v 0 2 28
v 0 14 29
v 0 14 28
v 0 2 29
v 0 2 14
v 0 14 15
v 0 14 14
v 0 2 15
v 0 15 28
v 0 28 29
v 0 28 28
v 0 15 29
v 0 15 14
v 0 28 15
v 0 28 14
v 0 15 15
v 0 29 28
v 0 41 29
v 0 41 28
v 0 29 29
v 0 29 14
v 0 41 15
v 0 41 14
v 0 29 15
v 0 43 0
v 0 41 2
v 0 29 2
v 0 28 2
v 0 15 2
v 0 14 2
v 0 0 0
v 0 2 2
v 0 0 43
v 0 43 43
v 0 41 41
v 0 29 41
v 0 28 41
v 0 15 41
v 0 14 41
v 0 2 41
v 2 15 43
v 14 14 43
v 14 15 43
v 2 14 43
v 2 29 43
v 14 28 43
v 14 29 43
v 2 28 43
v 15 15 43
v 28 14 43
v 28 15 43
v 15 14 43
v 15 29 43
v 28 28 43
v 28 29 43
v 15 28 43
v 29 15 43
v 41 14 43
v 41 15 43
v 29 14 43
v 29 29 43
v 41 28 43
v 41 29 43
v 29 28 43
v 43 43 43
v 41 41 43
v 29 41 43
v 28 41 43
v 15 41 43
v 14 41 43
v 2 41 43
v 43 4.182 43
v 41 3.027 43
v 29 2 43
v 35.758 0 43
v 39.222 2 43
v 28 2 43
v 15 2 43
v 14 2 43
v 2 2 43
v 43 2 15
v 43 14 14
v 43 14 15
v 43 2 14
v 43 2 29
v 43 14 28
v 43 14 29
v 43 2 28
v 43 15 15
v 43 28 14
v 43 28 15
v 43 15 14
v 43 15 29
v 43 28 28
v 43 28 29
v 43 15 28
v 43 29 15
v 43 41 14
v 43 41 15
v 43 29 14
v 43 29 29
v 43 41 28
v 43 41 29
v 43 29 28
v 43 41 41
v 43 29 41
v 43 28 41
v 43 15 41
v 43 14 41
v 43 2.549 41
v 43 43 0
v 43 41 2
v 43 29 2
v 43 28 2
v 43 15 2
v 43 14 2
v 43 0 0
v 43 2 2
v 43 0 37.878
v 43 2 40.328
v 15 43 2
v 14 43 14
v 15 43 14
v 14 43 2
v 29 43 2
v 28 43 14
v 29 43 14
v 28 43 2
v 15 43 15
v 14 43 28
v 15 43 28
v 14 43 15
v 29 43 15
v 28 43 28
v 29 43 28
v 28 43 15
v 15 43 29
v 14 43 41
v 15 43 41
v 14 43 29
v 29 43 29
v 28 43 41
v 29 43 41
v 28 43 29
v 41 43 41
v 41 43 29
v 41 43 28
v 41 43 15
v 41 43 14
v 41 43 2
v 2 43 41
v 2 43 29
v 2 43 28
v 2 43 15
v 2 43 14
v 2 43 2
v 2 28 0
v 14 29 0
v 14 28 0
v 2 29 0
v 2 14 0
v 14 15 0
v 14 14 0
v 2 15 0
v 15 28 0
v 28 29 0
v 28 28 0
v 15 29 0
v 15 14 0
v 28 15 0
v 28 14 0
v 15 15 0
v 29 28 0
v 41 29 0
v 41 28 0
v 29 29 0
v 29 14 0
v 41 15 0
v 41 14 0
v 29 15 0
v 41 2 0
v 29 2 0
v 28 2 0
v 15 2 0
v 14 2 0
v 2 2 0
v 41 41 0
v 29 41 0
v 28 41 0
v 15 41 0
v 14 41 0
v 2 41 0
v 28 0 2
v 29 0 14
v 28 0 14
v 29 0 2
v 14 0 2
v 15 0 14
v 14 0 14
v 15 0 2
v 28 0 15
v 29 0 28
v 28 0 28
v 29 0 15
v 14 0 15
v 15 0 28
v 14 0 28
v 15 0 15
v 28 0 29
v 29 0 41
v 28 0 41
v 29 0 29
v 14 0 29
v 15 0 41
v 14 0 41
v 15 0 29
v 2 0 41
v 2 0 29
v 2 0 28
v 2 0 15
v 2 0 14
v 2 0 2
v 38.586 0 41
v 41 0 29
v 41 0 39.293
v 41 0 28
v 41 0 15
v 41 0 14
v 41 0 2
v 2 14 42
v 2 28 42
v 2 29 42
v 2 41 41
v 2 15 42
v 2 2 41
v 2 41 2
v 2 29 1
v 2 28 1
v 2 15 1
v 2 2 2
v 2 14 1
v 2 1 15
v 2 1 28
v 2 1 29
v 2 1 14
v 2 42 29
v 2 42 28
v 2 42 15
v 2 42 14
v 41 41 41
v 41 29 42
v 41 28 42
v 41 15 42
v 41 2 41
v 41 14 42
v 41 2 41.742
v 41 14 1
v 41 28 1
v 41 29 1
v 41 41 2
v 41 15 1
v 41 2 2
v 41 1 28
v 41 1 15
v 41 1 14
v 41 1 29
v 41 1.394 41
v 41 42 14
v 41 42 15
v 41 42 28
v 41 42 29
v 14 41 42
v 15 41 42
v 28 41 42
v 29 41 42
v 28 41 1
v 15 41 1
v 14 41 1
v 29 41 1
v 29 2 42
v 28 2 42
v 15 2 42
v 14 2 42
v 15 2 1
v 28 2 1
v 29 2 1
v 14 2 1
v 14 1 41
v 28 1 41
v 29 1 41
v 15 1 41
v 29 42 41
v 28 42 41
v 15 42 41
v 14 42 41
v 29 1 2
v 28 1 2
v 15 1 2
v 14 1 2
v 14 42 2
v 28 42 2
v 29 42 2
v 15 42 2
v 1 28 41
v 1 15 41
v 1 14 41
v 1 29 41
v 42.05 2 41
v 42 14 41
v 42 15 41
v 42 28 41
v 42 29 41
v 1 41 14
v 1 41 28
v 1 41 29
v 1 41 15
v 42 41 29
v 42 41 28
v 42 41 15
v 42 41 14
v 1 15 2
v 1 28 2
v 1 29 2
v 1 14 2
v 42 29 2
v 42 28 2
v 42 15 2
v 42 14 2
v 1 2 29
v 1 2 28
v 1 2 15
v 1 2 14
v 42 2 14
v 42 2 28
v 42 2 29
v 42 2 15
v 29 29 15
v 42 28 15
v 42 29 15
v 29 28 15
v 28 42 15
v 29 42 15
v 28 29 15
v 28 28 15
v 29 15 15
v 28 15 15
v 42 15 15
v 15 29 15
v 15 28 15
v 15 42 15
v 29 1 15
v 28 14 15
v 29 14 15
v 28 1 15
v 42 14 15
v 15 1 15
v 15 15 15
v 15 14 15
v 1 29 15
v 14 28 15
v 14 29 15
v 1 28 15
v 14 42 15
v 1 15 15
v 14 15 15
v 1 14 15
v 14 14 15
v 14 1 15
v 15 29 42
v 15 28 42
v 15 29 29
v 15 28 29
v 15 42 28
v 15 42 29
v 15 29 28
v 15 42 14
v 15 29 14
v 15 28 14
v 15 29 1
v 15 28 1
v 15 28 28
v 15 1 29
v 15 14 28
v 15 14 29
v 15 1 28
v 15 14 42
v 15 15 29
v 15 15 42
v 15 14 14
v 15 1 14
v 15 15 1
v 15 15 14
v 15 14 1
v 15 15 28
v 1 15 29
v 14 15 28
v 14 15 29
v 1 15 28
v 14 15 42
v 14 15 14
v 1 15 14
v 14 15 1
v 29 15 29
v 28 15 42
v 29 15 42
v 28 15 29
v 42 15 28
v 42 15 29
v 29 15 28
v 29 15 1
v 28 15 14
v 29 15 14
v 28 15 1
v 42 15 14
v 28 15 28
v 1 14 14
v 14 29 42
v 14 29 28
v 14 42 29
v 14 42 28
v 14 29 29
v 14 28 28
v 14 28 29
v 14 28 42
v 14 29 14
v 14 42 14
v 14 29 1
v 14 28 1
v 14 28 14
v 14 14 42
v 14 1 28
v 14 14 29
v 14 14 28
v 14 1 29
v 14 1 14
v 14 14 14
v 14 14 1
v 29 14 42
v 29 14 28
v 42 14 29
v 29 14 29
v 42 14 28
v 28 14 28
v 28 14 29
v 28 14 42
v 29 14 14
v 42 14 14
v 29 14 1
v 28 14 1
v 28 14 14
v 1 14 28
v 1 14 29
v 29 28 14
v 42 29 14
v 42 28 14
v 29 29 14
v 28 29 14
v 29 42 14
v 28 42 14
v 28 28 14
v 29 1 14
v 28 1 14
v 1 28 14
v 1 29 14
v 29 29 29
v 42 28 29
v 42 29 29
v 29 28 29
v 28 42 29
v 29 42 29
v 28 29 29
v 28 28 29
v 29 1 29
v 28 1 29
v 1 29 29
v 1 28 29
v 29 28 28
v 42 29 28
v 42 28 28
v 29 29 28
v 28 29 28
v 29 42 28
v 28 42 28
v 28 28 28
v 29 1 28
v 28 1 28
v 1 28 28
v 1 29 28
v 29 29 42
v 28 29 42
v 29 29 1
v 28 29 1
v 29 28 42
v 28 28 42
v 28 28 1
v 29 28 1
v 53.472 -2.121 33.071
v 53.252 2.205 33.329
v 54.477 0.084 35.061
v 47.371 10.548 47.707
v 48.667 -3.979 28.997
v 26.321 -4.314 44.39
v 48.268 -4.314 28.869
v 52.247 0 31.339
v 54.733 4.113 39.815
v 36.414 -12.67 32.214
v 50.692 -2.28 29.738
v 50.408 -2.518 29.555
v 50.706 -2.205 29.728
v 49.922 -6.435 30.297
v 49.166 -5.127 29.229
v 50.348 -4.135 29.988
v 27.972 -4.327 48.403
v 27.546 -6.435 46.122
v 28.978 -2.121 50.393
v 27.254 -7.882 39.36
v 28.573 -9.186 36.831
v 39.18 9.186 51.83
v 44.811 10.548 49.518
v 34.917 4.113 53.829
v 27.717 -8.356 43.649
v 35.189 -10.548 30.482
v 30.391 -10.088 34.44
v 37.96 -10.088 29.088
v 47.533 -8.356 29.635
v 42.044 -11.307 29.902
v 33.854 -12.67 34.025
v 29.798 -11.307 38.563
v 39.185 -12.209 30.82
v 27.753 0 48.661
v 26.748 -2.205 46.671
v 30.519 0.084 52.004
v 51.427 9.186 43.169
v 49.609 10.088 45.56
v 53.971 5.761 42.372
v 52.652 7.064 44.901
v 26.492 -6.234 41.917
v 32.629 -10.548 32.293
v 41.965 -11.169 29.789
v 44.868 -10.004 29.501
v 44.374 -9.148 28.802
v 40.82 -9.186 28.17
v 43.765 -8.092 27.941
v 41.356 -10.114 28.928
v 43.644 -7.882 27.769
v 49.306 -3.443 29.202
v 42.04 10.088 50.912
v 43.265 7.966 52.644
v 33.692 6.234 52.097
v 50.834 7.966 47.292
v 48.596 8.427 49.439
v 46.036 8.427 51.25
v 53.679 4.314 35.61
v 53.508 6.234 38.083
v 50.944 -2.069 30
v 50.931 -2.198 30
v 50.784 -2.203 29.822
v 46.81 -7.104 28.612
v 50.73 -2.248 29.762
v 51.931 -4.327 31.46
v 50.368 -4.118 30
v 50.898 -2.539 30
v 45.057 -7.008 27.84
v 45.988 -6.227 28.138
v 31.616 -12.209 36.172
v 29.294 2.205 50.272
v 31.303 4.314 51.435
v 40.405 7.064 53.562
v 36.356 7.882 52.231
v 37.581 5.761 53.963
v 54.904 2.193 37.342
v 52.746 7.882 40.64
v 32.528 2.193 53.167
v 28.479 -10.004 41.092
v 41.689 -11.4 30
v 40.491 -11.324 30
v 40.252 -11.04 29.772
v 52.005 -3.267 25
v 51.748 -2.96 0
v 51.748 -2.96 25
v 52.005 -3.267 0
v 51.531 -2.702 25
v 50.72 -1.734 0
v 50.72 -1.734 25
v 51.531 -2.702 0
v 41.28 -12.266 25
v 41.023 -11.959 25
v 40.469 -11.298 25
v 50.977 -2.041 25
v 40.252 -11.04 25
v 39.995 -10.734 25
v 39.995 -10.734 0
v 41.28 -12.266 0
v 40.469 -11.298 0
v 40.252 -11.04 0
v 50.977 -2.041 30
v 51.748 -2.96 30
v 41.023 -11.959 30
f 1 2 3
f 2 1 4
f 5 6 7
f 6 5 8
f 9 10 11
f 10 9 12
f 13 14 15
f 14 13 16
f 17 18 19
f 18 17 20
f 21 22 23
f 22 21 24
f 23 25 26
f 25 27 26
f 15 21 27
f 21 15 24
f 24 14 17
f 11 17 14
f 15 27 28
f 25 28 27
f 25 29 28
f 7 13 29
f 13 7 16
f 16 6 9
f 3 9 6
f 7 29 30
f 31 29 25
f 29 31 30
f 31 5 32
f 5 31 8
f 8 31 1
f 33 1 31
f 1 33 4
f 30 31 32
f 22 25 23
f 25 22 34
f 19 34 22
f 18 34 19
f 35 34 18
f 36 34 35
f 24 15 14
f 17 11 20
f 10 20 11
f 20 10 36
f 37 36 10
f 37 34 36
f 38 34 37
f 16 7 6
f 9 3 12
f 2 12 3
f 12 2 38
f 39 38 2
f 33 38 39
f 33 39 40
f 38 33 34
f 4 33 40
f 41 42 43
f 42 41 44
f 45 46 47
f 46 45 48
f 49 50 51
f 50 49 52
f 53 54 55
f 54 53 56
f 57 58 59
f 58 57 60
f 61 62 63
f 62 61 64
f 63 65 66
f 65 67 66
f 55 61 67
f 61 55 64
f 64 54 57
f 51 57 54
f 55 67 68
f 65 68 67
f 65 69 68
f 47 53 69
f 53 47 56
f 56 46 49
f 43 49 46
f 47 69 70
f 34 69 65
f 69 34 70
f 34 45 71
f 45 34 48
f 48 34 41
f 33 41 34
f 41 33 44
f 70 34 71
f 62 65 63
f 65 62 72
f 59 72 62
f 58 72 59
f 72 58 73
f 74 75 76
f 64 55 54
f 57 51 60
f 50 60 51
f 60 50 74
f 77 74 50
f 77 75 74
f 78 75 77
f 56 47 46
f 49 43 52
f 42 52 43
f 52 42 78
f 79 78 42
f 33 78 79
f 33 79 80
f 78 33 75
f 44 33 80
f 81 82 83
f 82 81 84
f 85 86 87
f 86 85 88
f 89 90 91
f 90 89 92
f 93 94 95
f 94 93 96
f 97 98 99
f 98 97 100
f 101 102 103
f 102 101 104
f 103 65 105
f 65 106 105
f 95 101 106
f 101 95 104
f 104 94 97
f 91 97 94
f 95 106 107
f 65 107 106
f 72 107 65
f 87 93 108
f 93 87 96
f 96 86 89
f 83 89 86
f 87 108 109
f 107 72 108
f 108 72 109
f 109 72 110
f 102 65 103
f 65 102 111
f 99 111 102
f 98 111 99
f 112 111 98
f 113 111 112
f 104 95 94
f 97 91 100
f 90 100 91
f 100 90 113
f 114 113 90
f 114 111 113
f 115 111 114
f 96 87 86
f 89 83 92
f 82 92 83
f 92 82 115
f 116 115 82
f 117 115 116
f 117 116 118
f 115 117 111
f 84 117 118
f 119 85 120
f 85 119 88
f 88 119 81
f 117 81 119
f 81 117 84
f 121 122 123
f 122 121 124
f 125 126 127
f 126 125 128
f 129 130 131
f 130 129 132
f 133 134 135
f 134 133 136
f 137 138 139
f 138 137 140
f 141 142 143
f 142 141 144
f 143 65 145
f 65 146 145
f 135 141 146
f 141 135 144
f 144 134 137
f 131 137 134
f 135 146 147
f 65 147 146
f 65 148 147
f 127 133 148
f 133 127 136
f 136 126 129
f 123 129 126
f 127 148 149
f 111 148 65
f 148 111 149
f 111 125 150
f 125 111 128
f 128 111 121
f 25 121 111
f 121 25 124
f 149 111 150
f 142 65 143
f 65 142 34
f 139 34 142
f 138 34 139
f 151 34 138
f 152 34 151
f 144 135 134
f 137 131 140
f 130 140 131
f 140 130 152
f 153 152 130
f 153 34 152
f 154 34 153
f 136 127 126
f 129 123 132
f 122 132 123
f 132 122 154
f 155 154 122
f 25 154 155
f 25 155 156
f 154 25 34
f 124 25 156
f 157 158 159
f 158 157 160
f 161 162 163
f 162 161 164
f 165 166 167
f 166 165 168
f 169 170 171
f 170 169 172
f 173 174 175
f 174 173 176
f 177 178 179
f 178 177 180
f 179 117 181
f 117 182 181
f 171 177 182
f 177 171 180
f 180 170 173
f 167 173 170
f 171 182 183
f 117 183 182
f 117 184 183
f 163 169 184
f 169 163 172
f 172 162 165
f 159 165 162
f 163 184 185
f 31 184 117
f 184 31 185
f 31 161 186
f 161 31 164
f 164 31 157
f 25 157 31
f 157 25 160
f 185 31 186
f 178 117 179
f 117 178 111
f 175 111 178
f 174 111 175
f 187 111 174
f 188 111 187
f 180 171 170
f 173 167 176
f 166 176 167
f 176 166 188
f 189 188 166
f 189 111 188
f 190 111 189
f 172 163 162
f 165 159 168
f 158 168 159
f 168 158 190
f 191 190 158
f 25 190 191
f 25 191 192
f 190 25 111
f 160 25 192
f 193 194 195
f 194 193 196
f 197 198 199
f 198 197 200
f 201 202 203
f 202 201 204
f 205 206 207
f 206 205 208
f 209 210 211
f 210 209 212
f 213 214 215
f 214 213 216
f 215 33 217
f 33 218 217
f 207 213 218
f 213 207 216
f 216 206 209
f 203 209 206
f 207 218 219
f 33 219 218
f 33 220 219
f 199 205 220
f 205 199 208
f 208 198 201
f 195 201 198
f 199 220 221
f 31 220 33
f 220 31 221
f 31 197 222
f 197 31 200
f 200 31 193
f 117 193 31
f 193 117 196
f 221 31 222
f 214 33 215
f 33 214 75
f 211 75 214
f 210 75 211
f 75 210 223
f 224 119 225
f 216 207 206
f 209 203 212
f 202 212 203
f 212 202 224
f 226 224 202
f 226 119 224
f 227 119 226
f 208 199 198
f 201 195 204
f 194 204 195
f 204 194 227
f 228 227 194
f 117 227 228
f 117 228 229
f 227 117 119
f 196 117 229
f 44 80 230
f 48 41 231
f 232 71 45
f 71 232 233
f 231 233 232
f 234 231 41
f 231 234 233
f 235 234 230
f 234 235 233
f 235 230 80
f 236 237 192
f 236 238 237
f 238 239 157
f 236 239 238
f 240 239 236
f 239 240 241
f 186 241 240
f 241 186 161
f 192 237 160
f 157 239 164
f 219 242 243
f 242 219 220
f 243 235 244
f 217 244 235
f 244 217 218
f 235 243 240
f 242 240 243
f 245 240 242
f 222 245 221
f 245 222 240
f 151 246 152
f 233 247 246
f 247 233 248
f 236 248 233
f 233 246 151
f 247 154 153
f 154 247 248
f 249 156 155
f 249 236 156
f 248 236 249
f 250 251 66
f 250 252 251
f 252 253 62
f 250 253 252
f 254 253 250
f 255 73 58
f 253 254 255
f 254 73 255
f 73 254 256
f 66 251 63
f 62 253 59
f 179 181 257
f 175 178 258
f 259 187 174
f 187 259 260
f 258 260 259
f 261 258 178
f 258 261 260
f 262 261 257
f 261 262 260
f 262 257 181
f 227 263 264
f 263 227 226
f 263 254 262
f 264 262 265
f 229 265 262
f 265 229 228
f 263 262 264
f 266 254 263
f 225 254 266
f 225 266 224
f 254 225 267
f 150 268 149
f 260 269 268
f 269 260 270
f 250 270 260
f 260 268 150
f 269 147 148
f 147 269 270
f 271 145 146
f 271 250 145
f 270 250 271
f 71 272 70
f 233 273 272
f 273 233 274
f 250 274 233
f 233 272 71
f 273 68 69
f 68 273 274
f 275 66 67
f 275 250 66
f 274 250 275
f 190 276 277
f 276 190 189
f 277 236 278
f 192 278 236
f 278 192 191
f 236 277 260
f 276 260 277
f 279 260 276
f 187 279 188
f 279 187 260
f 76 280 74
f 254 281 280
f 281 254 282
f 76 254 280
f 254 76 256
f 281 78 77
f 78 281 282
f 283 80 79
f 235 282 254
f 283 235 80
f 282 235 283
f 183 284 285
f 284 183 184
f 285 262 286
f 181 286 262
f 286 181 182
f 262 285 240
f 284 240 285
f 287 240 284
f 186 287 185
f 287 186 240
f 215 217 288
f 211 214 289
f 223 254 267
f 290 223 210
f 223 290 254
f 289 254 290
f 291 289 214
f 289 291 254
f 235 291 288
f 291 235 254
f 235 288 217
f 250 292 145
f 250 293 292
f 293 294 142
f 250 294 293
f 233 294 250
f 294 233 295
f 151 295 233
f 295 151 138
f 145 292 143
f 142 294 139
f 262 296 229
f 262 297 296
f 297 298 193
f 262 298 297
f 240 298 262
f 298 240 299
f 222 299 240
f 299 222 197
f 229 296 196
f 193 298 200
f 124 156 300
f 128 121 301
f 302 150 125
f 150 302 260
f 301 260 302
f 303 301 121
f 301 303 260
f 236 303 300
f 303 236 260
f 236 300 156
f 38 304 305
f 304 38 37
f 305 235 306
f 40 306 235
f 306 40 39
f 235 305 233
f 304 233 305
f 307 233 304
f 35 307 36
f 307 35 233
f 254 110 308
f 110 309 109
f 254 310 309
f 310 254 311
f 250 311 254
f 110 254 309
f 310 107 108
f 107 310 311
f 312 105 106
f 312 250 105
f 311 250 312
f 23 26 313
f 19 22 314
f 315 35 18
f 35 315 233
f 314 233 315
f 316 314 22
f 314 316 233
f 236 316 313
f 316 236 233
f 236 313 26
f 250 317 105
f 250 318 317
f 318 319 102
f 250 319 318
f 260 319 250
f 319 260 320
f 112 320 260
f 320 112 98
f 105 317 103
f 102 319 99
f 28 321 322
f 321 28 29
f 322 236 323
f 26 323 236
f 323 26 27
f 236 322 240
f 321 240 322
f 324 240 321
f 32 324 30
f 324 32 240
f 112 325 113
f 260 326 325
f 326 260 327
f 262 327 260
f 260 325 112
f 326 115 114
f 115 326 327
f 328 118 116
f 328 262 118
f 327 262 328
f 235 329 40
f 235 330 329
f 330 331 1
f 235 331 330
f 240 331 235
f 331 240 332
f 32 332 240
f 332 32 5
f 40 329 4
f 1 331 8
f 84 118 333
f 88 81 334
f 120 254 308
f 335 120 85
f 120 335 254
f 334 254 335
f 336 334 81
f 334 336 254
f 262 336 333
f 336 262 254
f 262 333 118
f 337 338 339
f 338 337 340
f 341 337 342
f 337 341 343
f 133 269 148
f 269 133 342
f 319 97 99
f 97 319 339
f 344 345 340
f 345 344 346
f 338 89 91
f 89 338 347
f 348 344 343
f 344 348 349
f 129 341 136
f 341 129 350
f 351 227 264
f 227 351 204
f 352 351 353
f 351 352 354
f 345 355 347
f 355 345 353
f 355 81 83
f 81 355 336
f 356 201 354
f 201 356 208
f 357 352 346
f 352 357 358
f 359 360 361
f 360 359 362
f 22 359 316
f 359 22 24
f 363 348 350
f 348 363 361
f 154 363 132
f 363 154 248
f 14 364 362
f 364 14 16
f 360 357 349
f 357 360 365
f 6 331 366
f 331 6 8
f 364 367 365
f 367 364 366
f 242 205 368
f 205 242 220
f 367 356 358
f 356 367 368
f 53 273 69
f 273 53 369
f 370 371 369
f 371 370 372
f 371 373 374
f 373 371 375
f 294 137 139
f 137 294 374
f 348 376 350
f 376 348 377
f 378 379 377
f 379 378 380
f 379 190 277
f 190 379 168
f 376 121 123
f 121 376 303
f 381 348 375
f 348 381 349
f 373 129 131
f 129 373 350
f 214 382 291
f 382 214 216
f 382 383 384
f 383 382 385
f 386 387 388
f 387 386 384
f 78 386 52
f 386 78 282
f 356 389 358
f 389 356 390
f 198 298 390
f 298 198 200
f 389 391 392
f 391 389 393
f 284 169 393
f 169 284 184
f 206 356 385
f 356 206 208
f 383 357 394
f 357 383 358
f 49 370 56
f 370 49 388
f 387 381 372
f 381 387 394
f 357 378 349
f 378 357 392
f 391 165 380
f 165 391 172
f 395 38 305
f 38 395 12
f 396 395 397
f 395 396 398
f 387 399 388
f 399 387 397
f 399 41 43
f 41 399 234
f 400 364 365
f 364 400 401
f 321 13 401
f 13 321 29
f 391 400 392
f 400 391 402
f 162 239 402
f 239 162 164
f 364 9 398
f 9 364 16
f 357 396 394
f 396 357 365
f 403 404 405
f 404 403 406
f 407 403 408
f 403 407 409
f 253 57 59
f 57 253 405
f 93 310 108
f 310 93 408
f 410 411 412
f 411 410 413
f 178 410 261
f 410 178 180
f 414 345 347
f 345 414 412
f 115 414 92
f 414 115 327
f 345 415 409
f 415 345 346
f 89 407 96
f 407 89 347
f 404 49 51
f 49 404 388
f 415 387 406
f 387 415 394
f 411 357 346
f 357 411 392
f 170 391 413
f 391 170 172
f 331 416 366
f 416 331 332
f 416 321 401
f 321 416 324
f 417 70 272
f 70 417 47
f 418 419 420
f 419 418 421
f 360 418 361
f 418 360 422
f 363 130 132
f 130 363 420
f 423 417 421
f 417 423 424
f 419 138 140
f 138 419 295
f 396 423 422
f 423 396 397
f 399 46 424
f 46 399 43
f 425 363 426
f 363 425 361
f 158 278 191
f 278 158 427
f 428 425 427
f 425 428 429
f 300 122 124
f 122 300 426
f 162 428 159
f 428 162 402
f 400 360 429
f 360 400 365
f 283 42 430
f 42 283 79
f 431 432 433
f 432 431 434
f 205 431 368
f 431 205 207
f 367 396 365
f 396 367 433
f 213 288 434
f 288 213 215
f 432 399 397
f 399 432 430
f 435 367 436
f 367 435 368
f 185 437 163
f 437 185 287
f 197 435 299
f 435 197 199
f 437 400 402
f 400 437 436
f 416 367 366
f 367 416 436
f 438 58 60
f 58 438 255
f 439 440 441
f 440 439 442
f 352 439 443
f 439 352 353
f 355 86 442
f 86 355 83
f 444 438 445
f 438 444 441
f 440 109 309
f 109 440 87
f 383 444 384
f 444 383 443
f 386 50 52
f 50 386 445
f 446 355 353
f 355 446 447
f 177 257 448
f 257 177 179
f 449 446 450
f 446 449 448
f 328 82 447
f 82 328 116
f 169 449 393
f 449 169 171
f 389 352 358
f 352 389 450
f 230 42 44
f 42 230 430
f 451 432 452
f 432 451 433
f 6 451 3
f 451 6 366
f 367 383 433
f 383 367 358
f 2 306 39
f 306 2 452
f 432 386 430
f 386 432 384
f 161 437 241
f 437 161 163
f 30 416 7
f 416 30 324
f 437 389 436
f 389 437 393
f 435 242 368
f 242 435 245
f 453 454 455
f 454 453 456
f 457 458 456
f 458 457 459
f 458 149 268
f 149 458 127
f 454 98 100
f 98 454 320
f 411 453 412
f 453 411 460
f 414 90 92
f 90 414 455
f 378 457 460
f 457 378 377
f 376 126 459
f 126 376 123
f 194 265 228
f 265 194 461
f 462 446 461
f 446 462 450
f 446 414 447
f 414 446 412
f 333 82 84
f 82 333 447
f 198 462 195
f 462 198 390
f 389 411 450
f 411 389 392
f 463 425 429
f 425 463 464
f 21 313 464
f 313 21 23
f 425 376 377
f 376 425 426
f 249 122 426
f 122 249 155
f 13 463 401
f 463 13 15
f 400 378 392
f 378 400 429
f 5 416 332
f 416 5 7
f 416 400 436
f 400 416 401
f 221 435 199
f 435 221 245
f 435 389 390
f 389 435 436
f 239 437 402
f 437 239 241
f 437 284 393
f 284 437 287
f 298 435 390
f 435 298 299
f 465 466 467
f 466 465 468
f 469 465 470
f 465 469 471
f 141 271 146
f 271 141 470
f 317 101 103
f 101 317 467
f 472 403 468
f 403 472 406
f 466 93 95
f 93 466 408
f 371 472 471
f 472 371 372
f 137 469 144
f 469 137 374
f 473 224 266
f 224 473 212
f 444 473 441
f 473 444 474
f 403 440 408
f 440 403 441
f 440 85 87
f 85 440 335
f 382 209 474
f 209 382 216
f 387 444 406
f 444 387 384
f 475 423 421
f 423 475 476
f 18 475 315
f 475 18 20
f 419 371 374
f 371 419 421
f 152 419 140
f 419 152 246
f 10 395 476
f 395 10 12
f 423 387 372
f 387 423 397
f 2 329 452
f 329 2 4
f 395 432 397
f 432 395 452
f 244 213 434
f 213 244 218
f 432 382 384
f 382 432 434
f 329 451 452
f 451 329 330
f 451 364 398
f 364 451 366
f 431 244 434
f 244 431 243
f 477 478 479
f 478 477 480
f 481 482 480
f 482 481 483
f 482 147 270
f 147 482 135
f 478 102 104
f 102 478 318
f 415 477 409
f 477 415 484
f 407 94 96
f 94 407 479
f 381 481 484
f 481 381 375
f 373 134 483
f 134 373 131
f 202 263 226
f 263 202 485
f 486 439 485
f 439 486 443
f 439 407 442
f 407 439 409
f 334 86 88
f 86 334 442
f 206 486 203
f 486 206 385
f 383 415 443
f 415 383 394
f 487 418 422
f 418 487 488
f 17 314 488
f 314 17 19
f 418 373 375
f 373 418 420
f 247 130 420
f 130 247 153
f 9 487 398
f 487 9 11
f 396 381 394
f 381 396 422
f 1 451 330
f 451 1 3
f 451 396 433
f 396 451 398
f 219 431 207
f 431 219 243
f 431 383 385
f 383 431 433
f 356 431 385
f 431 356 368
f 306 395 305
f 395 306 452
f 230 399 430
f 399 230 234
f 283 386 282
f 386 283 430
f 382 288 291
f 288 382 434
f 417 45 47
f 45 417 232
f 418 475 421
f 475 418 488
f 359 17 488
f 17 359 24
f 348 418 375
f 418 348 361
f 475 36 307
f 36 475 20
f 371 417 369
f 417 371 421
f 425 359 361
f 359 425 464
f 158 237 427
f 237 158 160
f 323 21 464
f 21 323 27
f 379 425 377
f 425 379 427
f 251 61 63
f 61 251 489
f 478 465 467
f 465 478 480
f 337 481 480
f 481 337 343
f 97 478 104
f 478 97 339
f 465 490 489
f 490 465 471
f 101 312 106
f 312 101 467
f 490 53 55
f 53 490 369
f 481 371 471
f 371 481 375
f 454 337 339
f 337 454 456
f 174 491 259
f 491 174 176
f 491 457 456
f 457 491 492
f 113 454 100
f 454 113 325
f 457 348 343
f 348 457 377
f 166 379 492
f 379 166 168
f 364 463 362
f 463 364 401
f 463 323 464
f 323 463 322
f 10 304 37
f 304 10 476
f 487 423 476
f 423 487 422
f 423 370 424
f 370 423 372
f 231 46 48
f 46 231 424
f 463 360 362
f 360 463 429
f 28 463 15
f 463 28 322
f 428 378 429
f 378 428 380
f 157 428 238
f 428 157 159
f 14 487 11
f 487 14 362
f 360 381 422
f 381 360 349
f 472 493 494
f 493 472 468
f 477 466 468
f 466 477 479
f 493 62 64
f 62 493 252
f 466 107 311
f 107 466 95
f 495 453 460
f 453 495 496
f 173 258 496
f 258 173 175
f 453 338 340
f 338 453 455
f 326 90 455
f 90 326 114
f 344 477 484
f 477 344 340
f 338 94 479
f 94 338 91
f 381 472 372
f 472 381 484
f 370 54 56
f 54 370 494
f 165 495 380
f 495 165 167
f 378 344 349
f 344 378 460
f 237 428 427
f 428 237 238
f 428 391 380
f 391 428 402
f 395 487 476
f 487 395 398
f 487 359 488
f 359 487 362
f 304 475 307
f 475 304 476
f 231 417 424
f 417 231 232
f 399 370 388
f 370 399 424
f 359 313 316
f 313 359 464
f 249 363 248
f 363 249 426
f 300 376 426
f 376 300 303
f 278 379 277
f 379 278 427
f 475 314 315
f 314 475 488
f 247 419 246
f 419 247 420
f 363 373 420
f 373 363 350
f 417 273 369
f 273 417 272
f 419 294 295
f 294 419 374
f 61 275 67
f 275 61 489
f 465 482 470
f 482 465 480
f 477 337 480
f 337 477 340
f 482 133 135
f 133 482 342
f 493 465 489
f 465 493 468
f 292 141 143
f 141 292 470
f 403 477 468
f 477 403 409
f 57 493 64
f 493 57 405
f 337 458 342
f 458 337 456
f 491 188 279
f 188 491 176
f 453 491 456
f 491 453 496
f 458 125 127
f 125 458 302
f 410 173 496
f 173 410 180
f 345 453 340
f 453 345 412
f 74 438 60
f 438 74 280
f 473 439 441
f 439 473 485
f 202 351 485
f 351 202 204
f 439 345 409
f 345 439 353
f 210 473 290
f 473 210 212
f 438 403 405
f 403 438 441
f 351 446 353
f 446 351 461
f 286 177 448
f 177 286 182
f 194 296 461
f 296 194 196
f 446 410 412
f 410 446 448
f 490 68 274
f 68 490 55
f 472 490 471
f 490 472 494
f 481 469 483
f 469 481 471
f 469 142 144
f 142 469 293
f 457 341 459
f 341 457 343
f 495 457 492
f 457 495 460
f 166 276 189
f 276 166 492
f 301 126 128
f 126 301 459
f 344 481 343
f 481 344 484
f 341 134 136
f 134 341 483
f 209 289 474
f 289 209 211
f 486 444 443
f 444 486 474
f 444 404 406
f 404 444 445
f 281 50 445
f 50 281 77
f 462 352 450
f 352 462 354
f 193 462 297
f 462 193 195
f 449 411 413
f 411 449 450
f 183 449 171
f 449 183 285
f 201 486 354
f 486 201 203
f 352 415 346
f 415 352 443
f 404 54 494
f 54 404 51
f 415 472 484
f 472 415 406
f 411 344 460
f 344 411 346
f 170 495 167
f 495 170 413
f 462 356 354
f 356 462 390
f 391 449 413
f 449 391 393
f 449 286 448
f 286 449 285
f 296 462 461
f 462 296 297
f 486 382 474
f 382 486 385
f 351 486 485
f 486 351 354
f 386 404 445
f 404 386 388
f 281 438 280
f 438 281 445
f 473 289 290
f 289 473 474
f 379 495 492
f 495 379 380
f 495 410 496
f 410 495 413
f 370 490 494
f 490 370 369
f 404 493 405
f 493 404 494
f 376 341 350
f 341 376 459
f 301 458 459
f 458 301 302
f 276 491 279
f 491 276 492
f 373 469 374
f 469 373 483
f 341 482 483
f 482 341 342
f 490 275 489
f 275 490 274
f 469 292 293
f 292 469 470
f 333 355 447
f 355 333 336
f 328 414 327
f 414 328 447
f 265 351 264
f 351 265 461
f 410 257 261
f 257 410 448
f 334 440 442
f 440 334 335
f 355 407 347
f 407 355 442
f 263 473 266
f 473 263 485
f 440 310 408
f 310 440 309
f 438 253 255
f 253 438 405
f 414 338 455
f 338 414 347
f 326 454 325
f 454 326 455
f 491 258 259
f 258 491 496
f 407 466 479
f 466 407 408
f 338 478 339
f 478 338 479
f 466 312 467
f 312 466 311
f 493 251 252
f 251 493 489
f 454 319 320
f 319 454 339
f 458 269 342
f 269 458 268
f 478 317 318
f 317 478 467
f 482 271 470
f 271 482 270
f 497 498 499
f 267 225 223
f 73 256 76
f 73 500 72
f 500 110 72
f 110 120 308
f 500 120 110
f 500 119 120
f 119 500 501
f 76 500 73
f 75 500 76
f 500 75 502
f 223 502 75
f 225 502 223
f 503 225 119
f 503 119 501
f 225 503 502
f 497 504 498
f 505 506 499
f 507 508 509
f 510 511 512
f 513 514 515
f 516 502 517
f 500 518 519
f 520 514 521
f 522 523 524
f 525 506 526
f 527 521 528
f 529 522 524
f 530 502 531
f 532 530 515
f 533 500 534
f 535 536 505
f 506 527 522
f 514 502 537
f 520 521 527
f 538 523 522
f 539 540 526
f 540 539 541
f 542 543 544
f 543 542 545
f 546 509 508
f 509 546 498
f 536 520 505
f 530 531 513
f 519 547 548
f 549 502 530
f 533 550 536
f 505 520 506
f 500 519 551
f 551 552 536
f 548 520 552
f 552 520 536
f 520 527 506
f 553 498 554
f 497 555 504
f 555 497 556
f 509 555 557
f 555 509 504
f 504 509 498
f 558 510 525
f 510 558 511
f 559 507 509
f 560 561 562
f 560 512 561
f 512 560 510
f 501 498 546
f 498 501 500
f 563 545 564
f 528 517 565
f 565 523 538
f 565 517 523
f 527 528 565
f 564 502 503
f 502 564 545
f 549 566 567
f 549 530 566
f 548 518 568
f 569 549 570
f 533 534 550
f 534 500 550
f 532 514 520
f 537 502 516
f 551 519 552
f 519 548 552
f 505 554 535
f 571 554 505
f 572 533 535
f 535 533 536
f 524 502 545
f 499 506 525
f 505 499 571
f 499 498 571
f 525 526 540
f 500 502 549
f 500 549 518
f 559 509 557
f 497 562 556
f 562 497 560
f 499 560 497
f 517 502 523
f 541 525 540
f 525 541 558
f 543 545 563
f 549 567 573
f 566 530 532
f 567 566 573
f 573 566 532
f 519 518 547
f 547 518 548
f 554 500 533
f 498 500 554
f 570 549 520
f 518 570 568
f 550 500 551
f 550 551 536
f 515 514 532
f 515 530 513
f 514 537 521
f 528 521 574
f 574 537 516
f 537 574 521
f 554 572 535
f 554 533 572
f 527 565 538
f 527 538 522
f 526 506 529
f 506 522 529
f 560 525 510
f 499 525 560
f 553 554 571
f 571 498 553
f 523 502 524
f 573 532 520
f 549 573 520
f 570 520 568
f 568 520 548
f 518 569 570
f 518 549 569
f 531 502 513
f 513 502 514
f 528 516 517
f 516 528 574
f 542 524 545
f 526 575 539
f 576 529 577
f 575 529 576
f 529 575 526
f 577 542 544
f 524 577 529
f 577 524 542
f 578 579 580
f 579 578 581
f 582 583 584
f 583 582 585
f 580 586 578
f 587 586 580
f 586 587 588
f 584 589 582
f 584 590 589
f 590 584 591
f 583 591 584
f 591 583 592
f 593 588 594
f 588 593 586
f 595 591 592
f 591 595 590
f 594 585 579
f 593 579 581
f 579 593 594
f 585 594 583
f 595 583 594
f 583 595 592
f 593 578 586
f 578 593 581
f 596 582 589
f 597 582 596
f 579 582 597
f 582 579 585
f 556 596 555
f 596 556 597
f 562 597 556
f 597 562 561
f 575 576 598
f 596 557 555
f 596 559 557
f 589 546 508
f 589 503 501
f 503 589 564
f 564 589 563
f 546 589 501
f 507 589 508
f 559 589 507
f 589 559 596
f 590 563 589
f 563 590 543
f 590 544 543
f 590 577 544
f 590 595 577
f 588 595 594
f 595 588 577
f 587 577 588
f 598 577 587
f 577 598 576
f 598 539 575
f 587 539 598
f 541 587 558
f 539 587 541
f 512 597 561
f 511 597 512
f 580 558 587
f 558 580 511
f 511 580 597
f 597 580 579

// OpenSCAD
module kasten(size=100,wall=10){
  buffer=10;
  translate([size/2,size/2,size/2])
  difference() {
    cube([size,size,size],center=true);
    cube([size-wall,size-wall,size+buffer],center=true);
    cube([size-wall,size+buffer,size-wall],center=true);
    cube([size+buffer,size-wall,size-wall],center=true);
  }
}

module gitter(n=3,s=20,w=2.4) {
  range=[for(i=[0:n-1]) i];
  sw=s-w/2;

  kasten(sw*(len(range)-1)+s,2*w);
  for(x=range){
    for(y=range){
      for(z=range){
        echo(x,y,z);
        translate([x*sw,y*sw,z*sw])
        kasten(s,w);
      }
    }
  }
}

gitter(n=3,s=15,w=2);

translate([40,0,40])
rotate([45,90-atan(1.414),0])
cylinder(h=3, r=15);


h1=25;
translate([46,-7,h1/2])
rotate([0,0,40])
cube([14,2,h1], center=true);


h2=30;
translate([46,-7,h2/2])
rotate([0,0,40])
cube([14,1.2,h2], center=true);
